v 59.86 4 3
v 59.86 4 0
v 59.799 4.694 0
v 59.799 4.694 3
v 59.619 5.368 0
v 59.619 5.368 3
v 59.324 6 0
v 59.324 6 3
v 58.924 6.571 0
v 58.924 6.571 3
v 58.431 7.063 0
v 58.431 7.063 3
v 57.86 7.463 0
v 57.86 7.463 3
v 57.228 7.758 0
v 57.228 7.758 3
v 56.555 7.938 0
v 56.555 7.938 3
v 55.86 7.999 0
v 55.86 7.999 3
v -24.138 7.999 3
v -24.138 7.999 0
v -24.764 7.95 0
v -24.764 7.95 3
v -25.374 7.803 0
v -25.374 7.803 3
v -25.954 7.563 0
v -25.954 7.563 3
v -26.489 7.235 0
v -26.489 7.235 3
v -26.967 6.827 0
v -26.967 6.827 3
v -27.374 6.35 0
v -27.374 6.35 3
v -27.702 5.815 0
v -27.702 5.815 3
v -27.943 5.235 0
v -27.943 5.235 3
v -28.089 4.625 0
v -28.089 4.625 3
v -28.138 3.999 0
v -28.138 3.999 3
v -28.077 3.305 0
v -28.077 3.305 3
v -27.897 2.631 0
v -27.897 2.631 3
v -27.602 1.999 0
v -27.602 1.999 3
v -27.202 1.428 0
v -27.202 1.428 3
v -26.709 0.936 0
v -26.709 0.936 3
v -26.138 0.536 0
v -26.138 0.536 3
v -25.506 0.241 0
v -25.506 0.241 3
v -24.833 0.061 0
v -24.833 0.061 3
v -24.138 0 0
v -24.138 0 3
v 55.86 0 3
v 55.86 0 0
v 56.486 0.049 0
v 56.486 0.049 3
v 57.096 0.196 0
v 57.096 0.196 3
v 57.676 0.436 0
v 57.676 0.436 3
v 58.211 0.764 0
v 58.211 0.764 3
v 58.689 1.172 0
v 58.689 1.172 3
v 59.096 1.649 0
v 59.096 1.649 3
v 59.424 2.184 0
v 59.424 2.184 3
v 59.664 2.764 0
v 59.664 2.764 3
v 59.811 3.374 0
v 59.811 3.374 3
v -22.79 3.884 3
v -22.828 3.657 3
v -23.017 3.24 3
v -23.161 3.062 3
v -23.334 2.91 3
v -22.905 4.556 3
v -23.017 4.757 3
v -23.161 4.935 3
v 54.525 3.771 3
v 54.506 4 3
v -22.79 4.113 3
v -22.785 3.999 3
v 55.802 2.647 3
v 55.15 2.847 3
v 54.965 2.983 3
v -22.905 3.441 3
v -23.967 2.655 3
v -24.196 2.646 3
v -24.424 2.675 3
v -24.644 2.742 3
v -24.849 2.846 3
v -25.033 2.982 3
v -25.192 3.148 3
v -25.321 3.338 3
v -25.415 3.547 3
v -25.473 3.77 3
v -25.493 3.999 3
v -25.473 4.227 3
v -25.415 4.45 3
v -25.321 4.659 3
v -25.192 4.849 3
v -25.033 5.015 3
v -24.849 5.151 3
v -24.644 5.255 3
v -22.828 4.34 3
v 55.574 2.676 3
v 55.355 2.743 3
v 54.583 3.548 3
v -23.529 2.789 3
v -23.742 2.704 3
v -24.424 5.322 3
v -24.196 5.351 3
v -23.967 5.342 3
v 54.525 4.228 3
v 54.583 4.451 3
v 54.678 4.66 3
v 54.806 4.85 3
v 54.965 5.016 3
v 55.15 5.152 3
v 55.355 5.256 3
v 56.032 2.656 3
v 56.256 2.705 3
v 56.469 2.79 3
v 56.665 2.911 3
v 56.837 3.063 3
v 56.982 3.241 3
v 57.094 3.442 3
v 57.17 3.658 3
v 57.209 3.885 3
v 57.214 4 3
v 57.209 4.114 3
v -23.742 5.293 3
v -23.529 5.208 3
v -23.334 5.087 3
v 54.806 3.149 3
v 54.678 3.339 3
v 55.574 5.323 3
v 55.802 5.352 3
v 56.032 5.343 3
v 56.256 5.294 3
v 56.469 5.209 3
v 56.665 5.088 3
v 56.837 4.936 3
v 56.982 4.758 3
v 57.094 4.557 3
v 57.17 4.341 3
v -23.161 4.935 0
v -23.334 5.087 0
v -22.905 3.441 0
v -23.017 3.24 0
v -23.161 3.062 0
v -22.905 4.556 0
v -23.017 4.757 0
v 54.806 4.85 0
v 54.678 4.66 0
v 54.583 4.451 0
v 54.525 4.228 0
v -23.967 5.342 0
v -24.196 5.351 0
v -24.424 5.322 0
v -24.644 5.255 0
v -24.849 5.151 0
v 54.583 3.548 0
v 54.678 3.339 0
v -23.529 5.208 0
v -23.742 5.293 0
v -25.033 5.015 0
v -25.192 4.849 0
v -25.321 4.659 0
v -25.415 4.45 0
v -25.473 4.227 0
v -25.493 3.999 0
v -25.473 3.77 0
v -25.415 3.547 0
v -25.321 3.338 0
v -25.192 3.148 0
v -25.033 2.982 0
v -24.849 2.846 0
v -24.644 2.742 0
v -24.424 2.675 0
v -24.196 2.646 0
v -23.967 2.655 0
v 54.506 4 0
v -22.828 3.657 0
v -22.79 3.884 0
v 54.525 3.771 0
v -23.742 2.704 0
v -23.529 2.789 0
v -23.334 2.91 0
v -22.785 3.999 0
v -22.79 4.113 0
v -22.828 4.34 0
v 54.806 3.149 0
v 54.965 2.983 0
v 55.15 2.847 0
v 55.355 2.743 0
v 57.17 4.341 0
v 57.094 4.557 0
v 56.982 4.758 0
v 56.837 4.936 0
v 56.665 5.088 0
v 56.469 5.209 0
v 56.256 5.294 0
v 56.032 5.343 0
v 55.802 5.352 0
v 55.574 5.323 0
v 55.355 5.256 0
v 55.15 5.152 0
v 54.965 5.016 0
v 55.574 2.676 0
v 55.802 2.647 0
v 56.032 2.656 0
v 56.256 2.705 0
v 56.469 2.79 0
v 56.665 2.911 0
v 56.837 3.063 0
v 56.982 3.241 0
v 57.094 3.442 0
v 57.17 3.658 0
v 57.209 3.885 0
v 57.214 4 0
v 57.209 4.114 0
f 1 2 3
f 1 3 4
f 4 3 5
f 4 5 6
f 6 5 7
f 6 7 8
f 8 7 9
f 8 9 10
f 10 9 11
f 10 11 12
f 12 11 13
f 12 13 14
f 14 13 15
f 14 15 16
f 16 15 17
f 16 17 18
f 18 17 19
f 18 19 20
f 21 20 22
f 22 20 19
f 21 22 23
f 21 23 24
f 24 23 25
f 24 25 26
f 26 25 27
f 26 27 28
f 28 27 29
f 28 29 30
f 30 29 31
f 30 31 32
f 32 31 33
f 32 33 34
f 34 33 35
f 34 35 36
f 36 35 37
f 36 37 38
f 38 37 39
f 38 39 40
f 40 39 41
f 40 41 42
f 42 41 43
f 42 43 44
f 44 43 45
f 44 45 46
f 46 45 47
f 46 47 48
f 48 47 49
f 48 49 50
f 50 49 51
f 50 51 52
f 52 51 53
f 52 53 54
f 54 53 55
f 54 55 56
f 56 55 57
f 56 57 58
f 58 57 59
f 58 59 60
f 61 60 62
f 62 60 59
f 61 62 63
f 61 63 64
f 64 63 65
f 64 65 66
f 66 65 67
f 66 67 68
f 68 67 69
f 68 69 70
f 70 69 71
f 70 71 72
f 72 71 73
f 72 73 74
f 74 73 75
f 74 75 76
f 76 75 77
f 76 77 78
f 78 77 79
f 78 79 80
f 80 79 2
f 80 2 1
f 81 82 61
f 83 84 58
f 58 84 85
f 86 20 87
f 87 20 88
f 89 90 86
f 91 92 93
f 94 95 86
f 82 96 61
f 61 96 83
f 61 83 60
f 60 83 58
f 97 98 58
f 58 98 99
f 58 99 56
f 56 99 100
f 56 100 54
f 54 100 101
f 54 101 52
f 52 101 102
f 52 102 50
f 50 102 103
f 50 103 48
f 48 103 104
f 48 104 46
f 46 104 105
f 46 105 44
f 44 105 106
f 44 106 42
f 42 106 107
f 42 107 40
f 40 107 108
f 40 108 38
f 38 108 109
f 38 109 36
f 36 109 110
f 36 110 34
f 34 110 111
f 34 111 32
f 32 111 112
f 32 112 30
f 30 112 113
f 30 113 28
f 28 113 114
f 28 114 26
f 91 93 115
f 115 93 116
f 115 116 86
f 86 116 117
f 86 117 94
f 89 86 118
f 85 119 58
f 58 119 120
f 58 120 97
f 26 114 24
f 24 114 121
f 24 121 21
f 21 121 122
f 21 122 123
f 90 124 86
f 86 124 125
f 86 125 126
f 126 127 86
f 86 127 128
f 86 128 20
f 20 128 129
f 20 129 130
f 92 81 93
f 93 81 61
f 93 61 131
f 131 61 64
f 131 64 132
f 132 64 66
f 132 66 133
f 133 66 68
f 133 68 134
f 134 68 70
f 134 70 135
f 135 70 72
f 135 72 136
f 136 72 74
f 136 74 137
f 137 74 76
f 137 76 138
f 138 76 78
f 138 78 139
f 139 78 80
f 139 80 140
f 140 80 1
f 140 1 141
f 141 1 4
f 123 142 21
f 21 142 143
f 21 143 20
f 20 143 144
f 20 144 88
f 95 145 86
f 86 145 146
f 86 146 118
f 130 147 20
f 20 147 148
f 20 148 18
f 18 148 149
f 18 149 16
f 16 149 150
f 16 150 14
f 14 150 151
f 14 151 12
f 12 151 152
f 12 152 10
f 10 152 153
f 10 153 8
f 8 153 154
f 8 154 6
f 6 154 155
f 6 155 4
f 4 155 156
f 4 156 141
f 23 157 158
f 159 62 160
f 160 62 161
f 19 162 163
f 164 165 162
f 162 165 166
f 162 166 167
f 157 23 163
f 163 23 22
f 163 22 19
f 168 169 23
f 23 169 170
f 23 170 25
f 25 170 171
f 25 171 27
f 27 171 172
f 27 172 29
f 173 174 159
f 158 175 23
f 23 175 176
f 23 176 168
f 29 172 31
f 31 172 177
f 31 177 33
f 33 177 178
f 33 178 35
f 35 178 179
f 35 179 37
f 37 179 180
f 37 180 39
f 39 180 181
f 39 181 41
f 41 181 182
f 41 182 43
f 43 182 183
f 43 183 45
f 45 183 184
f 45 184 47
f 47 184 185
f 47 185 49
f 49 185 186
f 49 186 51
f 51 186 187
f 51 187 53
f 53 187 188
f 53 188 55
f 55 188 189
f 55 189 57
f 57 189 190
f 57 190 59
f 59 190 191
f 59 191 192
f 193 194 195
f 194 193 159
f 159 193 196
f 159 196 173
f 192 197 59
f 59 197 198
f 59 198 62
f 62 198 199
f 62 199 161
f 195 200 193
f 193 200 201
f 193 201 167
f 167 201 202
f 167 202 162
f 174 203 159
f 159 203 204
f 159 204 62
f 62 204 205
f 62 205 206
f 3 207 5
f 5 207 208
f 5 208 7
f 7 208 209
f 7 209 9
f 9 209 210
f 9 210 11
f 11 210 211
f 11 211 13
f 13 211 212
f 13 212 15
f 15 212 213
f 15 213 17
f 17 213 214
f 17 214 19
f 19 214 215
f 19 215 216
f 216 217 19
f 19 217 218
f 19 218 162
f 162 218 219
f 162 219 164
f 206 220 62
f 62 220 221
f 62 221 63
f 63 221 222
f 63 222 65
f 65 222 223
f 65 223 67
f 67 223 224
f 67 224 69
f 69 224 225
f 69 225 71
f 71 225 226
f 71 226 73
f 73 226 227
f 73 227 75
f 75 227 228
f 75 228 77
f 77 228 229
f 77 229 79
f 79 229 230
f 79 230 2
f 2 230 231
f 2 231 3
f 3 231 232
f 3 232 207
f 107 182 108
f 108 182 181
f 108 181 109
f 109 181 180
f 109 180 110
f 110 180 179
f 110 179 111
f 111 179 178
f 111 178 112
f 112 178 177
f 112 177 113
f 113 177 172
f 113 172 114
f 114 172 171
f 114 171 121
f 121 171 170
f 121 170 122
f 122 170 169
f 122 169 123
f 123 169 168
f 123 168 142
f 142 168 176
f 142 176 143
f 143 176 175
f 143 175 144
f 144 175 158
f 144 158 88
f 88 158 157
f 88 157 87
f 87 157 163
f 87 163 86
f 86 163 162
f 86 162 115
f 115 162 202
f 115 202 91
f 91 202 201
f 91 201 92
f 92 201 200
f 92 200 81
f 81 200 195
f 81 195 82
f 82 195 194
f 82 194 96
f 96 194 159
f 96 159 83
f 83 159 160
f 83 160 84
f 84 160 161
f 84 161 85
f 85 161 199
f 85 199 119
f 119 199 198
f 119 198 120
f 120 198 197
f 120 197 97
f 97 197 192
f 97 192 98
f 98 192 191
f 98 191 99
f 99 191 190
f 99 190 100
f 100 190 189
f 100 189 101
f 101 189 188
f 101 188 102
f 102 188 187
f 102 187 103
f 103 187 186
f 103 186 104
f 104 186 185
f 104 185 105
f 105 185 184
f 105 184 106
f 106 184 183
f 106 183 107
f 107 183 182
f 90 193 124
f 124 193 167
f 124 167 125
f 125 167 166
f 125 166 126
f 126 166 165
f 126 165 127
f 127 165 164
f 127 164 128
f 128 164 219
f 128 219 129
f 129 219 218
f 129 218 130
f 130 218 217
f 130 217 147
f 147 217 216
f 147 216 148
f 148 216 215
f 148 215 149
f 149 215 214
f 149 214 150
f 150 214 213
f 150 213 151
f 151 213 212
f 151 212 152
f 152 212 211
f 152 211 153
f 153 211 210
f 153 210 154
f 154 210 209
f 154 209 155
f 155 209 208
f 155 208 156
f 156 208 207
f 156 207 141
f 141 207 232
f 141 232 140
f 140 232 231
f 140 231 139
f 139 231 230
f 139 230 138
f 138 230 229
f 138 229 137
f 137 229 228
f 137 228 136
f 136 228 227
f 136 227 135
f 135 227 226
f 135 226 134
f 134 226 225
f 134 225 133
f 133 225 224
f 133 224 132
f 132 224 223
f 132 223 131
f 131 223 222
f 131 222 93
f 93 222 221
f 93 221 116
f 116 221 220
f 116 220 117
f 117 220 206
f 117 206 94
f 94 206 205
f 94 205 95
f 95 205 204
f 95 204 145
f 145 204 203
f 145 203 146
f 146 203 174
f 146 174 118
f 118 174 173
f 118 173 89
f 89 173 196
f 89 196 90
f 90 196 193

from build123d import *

# Parameters (mm, degrees)
SKETCH_1_R      = 1.354010502
EXTRUDE_1_DEPTH = 3


with BuildPart() as part:
    # 草图1 → 凸台-拉伸1 (new body)
    with BuildSketch(Plane(origin=(0, 0, 0), x_dir=(-1, 0, 0), z_dir=(0, 0, -1))):
        with BuildLine():
            Line((-55.860221974, 0), (24.13832066, 0))
            ThreePointArc((24.13832066, 0), (26.966394209, 1.171219344), (28.138320535, 3.999))
            ThreePointArc((28.138320535, 3.999), (26.96674766, 6.827427125), (24.138320535, 7.999))
            Line((24.138320535, 7.999), (-55.860222099, 7.999))
            ThreePointArc((-55.860222099, 7.999), (-58.688295648, 6.827780656), (-59.860221974, 4))
            ThreePointArc((-59.860221974, 4), (-58.688649099, 1.171572875), (-55.860221974, 0))
        make_face()
        with Locations((24.138809001, 3.998511534)):
            Circle(SKETCH_1_R, mode=Mode.SUBTRACT)
        with Locations((-55.859733508, 3.999511534)):
            Circle(SKETCH_1_R, mode=Mode.SUBTRACT)
    extrude(amount=-EXTRUDE_1_DEPTH)


solid = part.part
